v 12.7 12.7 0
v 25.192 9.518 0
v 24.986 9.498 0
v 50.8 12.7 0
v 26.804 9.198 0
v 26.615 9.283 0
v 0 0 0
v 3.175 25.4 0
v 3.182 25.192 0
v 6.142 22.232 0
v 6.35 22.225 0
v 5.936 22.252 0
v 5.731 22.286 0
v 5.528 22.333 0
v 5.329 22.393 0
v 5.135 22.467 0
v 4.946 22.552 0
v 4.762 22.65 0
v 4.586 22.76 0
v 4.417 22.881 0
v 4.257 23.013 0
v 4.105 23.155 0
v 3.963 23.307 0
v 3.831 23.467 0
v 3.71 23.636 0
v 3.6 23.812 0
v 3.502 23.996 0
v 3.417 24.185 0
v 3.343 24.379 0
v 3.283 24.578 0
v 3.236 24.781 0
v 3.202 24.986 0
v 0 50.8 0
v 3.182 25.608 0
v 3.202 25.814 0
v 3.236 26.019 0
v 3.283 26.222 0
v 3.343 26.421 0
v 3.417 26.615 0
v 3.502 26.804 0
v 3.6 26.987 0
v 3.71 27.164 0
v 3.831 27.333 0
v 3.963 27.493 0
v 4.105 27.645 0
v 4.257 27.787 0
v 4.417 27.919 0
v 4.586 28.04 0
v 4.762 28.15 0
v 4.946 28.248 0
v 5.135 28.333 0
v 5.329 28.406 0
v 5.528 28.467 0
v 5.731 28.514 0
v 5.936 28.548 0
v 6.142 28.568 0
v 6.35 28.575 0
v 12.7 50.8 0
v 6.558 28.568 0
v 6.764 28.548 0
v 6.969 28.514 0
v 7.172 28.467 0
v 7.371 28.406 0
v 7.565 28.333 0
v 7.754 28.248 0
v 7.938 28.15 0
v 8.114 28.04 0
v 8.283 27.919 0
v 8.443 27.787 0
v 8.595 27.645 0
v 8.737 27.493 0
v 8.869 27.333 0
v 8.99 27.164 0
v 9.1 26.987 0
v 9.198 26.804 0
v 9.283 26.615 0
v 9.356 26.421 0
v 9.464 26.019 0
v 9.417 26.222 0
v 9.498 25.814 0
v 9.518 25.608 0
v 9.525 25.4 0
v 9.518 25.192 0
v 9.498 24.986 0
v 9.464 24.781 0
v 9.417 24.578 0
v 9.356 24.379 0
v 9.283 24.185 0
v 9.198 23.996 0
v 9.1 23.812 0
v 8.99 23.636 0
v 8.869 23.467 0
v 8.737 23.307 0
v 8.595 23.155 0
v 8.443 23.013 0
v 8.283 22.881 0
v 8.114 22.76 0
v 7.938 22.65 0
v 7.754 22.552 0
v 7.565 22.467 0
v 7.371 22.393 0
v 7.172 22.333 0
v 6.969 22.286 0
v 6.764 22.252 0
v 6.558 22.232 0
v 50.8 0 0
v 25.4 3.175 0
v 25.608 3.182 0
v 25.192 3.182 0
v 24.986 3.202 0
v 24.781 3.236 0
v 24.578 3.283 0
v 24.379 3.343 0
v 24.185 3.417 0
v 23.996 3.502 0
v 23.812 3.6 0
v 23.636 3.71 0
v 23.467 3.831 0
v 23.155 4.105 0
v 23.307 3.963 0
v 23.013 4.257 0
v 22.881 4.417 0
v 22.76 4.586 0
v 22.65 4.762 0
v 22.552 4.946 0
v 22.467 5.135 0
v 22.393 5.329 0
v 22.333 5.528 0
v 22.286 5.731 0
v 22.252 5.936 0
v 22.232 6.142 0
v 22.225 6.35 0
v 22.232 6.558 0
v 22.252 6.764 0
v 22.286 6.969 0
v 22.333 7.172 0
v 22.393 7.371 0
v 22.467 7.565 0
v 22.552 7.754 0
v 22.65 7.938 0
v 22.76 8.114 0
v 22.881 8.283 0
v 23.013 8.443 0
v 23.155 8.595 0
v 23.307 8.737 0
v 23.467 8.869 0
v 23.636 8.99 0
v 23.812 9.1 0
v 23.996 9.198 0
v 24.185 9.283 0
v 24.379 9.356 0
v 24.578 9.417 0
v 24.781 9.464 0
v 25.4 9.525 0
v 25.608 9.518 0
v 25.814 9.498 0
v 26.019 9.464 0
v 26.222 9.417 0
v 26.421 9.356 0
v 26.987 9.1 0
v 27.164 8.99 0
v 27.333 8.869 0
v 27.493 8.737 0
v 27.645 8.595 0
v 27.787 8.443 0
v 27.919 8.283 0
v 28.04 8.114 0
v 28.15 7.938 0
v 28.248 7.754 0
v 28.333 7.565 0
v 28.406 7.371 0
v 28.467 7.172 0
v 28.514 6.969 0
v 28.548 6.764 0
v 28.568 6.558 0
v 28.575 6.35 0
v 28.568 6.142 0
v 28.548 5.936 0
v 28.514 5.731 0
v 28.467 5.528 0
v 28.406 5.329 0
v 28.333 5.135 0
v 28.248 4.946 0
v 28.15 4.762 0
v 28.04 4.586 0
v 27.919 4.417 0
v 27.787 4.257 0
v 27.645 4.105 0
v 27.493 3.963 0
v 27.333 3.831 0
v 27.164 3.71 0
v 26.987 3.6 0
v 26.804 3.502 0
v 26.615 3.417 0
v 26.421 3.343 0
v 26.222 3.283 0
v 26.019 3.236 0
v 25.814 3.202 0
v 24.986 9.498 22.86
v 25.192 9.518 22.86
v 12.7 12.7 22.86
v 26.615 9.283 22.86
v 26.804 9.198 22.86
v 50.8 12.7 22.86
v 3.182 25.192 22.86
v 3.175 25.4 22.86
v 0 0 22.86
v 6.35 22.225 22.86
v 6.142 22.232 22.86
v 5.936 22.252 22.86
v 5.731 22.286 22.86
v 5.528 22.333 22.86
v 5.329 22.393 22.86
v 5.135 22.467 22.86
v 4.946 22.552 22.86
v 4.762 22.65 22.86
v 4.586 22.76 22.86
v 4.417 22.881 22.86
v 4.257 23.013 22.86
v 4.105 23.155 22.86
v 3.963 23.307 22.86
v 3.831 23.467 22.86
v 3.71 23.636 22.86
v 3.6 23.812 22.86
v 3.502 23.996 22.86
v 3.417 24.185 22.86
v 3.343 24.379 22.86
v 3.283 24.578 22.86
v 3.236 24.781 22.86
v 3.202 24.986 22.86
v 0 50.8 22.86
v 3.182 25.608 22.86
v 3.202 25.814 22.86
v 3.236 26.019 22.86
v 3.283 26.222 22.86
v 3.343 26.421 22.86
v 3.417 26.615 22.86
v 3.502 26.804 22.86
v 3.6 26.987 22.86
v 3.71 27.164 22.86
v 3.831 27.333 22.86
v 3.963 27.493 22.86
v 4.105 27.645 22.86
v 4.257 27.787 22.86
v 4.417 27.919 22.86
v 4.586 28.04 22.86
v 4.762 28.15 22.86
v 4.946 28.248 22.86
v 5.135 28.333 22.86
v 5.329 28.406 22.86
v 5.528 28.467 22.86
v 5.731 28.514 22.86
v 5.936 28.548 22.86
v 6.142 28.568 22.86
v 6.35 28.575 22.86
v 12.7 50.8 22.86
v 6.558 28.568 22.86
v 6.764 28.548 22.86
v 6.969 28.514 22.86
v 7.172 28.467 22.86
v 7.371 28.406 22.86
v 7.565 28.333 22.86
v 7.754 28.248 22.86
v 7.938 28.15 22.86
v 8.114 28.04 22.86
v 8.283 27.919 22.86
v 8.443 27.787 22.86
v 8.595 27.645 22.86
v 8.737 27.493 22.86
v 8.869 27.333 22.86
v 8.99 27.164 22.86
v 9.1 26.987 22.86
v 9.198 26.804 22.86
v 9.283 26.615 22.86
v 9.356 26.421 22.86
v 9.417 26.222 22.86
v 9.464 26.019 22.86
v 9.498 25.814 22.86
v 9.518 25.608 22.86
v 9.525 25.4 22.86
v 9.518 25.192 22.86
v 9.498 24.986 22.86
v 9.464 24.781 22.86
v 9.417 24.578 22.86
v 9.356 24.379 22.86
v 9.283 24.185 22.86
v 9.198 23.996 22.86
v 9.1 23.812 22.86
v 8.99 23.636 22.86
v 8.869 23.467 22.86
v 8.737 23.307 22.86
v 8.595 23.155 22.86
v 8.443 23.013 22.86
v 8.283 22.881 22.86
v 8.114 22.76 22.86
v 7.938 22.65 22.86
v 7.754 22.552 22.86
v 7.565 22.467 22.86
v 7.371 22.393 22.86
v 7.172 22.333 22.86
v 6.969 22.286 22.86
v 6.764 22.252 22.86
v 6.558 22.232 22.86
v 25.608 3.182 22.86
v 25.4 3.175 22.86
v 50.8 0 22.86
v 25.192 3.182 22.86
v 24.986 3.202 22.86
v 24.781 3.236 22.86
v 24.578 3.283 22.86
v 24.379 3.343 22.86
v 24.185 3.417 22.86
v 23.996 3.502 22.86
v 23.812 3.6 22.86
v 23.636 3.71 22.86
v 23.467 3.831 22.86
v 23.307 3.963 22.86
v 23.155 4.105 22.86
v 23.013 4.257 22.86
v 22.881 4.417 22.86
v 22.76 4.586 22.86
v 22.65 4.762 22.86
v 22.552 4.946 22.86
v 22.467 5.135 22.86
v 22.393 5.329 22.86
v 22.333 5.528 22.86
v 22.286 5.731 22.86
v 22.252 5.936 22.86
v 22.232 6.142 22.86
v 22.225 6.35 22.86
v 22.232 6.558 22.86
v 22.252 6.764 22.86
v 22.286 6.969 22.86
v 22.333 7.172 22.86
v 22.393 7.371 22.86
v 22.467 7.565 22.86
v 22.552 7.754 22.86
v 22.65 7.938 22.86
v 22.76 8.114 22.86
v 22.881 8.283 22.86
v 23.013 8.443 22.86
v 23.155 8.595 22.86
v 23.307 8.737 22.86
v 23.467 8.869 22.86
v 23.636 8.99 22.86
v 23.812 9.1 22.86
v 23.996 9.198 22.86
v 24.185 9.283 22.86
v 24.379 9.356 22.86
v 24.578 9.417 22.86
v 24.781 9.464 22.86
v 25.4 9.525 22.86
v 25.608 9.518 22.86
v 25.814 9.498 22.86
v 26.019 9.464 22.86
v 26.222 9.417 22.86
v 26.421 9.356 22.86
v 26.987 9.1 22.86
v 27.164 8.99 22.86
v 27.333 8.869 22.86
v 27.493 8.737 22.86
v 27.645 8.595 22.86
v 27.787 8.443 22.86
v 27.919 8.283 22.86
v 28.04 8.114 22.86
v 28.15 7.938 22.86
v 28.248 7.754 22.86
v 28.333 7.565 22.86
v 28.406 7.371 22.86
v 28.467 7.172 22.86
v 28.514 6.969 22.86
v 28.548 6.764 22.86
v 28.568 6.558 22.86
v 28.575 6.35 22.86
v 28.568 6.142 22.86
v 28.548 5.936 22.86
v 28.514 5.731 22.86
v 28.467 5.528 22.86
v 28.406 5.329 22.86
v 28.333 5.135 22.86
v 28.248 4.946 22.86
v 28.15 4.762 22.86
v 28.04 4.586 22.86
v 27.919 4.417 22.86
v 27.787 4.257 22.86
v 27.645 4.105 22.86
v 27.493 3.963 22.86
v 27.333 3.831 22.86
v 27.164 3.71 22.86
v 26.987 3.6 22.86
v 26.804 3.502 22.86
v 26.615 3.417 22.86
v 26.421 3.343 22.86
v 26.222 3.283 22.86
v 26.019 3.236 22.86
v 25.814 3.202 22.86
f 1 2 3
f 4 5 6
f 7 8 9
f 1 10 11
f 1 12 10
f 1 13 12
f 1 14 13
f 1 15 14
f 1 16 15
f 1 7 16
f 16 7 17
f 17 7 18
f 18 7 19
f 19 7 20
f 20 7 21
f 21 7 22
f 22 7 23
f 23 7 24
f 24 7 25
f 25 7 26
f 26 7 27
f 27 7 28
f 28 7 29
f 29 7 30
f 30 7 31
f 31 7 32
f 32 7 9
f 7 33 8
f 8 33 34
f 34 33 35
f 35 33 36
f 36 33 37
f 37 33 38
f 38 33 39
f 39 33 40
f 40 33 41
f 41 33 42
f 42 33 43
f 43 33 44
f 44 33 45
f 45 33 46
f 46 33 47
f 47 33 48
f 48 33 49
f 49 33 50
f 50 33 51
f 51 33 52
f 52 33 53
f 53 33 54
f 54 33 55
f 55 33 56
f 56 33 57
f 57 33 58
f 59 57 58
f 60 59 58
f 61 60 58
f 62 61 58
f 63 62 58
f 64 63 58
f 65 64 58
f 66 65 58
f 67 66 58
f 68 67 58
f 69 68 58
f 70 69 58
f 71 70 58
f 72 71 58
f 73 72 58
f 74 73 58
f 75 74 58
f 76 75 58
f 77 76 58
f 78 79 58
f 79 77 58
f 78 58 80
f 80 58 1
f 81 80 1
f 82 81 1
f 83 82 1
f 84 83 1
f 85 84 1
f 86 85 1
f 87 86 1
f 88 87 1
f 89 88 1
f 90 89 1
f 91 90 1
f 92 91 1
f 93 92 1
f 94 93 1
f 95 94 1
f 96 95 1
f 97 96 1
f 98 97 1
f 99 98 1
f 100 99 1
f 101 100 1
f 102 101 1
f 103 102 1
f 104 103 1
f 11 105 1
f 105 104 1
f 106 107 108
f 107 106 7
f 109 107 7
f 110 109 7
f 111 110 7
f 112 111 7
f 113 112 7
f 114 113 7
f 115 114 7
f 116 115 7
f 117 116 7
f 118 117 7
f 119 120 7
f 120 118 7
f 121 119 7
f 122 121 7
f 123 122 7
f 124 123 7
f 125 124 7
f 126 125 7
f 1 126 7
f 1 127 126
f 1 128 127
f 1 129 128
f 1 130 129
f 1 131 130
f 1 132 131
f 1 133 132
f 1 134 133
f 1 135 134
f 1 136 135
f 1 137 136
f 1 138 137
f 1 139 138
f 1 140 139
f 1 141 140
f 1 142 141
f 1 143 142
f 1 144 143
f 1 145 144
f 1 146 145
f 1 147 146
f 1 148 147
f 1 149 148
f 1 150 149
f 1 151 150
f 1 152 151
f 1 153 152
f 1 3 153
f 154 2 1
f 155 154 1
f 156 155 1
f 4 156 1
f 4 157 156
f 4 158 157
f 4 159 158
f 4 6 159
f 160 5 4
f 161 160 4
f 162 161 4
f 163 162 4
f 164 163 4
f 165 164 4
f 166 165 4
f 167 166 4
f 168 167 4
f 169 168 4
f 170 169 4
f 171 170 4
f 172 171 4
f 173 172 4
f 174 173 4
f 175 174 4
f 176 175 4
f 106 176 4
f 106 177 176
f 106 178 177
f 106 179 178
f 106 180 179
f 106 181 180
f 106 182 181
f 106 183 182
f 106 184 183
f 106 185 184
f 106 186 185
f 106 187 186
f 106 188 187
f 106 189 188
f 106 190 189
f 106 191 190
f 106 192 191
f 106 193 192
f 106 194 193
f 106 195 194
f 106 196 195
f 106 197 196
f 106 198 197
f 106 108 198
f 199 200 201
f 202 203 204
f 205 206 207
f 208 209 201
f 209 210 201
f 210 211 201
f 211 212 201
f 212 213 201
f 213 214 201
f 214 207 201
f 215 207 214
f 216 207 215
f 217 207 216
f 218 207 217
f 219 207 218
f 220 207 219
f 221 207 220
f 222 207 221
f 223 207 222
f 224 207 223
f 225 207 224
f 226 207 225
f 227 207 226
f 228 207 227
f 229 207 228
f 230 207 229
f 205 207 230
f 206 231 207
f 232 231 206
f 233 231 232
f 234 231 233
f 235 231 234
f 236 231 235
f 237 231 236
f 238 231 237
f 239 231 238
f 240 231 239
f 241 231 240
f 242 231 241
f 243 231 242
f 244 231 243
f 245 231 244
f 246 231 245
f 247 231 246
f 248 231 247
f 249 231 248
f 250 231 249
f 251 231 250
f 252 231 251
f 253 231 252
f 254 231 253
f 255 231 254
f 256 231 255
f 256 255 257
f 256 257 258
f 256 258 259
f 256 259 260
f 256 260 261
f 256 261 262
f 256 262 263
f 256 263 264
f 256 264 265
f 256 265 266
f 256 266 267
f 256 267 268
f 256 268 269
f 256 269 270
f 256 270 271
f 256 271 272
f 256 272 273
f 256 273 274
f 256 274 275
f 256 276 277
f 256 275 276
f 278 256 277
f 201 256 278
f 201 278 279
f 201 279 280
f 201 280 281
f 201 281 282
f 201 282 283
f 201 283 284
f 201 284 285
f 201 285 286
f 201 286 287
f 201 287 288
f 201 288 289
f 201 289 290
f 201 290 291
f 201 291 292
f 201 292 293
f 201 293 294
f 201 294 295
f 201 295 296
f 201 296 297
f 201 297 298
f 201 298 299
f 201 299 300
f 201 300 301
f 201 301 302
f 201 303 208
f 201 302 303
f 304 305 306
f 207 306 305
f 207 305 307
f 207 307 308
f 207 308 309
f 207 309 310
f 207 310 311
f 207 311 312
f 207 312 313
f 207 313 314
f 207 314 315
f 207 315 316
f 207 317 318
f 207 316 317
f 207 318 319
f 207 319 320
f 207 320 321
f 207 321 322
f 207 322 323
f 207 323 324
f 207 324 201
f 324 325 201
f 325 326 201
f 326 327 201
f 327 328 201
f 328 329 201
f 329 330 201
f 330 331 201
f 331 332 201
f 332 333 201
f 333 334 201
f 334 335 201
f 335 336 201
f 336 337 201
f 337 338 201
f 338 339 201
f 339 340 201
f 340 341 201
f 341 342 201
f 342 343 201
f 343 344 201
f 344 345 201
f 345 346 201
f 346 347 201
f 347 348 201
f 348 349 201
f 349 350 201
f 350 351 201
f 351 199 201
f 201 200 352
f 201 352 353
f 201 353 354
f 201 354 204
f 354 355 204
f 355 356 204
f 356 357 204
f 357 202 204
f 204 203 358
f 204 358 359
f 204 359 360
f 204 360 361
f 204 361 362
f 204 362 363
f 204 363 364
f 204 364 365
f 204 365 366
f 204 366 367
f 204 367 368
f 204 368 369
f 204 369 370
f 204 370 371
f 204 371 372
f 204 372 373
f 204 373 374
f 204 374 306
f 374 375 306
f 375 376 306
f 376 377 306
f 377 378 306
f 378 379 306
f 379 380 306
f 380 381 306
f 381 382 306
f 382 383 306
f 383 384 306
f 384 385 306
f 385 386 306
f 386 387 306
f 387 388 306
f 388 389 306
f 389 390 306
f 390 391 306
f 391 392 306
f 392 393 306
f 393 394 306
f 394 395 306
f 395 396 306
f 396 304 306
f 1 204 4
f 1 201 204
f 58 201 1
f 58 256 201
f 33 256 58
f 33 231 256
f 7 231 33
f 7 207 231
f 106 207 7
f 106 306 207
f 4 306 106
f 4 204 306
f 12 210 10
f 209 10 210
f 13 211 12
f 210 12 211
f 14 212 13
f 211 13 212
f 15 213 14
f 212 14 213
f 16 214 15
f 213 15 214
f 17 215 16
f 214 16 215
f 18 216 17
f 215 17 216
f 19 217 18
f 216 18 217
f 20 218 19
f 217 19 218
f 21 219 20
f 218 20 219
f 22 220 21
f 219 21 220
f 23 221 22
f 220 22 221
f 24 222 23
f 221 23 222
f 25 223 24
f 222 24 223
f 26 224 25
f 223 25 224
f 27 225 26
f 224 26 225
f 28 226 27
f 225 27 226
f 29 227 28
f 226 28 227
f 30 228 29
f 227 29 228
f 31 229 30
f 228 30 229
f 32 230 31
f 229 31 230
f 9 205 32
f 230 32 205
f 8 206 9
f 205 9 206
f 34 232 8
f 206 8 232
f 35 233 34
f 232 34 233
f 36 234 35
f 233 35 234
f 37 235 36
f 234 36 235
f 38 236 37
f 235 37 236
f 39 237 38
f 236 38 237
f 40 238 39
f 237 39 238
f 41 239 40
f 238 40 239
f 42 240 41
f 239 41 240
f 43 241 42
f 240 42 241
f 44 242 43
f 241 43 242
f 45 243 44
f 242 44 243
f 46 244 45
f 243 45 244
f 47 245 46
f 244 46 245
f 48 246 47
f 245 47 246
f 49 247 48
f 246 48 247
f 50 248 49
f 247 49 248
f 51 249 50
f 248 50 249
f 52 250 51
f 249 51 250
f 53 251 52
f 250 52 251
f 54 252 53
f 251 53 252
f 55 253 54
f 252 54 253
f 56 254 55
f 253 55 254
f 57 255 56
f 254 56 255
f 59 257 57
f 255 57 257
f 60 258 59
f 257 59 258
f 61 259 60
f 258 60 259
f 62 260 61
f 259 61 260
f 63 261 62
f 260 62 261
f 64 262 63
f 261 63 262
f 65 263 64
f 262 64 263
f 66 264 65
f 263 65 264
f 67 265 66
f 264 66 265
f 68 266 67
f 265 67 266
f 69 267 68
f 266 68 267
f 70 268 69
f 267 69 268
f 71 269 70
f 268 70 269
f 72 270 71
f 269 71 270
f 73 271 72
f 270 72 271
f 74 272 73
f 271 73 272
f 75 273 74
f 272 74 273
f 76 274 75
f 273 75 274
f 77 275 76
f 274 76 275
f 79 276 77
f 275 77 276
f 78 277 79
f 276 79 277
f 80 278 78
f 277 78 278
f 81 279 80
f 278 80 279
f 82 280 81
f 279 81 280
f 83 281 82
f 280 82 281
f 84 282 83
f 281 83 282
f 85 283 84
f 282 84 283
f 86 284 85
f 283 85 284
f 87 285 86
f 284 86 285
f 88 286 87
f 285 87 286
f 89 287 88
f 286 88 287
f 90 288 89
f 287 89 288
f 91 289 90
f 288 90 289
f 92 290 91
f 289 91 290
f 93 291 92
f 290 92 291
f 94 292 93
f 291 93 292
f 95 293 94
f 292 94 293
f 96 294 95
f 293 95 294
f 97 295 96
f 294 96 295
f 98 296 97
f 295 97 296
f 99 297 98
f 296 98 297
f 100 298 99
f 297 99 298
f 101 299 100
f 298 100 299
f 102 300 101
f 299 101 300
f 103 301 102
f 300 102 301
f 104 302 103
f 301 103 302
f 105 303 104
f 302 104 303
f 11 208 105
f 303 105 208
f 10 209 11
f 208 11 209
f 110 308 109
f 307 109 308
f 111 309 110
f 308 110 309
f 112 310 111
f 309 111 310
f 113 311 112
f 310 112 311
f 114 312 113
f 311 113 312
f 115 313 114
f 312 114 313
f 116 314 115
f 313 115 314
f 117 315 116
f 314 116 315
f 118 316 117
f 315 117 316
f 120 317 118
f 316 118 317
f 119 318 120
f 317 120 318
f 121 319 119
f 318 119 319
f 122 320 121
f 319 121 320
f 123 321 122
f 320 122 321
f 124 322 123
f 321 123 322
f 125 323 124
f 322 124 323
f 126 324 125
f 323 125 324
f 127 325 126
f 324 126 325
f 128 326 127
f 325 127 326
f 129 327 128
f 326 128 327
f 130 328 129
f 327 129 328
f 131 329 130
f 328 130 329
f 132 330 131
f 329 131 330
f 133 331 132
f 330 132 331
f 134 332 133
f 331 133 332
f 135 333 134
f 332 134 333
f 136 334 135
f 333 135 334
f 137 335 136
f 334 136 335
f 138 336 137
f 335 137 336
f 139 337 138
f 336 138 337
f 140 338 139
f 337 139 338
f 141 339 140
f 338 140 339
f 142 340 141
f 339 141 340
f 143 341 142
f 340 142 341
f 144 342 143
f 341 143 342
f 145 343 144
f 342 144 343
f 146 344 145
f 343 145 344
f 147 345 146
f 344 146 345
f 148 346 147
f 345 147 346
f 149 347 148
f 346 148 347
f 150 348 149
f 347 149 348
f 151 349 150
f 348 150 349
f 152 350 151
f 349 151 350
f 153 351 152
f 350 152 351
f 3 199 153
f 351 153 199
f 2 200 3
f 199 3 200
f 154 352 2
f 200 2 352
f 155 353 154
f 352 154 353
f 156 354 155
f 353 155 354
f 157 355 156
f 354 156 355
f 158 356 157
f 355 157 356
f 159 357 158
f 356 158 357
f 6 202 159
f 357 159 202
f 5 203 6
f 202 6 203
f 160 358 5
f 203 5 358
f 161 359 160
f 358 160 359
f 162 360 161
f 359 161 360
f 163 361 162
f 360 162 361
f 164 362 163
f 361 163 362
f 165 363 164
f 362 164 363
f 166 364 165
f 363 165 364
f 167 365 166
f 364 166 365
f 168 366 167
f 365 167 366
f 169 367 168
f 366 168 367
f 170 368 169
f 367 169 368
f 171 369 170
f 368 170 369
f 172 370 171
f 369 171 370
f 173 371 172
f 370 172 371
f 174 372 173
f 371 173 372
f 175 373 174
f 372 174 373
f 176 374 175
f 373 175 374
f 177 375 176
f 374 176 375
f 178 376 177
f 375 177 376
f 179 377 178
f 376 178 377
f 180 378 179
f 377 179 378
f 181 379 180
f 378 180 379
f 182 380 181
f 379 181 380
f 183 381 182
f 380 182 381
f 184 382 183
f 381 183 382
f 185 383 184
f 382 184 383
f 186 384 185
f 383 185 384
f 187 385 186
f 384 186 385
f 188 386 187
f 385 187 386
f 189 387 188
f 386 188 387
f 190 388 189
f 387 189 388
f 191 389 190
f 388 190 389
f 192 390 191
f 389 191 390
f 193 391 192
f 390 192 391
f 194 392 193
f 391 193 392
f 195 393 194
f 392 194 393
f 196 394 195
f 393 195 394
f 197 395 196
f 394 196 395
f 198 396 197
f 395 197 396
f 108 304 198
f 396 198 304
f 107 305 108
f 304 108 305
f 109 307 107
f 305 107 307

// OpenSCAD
// ----------------------------------------
// L-shaped plate with midpoint holes
// All main dimensions in inches
// ----------------------------------------

INCH = 25.4;     // mm per inch
$fn  = 96;       // smooth circles

// Top-level parameters (all in inches)
leg_x_in        = 2;      // length of horizontal leg (X direction)
leg_y_in        = 2;      // length of vertical leg (Y direction)
leg_width_in    = 0.5;      // width of each leg
thickness_in    = 0.9;   // extrusion thickness (Z)
hole_diameter_in = 0.25;  // diameter of holes in each leg

// 2D L profile in the XY plane, with holes
module L_profile_with_holes(leg_x_in, leg_y_in, leg_width_in, hole_diameter_in) {
    lx = leg_x_in     * INCH;
    ly = leg_y_in     * INCH;
    w  = leg_width_in * INCH;
    r  = (hole_diameter_in * INCH) / 2;

    difference() {
        // Base L shape
        union() {
            // Horizontal leg (along +X)
            square([lx, w], center = false);

            // Vertical leg (along +Y)
            square([w, ly], center = false);
        }

        // Hole at midpoint of horizontal leg
        translate([lx/2, w/2])
            circle(r = r);

        // Hole at midpoint of vertical leg
        translate([w/2, ly/2])
            circle(r = r);
    }
}

// 3D L-shaped plate: extrude the 2D profile with holes
module L_plate(
    leg_x_in         = leg_x_in,
    leg_y_in         = leg_y_in,
    leg_width_in     = leg_width_in,
    thickness_in     = thickness_in,
    hole_diameter_in = hole_diameter_in
) {
    linear_extrude(height = thickness_in * INCH, center = false)
        L_profile_with_holes(leg_x_in, leg_y_in, leg_width_in, hole_diameter_in);
}

// ------------------------
// Example call
// ------------------------
L_plate();
